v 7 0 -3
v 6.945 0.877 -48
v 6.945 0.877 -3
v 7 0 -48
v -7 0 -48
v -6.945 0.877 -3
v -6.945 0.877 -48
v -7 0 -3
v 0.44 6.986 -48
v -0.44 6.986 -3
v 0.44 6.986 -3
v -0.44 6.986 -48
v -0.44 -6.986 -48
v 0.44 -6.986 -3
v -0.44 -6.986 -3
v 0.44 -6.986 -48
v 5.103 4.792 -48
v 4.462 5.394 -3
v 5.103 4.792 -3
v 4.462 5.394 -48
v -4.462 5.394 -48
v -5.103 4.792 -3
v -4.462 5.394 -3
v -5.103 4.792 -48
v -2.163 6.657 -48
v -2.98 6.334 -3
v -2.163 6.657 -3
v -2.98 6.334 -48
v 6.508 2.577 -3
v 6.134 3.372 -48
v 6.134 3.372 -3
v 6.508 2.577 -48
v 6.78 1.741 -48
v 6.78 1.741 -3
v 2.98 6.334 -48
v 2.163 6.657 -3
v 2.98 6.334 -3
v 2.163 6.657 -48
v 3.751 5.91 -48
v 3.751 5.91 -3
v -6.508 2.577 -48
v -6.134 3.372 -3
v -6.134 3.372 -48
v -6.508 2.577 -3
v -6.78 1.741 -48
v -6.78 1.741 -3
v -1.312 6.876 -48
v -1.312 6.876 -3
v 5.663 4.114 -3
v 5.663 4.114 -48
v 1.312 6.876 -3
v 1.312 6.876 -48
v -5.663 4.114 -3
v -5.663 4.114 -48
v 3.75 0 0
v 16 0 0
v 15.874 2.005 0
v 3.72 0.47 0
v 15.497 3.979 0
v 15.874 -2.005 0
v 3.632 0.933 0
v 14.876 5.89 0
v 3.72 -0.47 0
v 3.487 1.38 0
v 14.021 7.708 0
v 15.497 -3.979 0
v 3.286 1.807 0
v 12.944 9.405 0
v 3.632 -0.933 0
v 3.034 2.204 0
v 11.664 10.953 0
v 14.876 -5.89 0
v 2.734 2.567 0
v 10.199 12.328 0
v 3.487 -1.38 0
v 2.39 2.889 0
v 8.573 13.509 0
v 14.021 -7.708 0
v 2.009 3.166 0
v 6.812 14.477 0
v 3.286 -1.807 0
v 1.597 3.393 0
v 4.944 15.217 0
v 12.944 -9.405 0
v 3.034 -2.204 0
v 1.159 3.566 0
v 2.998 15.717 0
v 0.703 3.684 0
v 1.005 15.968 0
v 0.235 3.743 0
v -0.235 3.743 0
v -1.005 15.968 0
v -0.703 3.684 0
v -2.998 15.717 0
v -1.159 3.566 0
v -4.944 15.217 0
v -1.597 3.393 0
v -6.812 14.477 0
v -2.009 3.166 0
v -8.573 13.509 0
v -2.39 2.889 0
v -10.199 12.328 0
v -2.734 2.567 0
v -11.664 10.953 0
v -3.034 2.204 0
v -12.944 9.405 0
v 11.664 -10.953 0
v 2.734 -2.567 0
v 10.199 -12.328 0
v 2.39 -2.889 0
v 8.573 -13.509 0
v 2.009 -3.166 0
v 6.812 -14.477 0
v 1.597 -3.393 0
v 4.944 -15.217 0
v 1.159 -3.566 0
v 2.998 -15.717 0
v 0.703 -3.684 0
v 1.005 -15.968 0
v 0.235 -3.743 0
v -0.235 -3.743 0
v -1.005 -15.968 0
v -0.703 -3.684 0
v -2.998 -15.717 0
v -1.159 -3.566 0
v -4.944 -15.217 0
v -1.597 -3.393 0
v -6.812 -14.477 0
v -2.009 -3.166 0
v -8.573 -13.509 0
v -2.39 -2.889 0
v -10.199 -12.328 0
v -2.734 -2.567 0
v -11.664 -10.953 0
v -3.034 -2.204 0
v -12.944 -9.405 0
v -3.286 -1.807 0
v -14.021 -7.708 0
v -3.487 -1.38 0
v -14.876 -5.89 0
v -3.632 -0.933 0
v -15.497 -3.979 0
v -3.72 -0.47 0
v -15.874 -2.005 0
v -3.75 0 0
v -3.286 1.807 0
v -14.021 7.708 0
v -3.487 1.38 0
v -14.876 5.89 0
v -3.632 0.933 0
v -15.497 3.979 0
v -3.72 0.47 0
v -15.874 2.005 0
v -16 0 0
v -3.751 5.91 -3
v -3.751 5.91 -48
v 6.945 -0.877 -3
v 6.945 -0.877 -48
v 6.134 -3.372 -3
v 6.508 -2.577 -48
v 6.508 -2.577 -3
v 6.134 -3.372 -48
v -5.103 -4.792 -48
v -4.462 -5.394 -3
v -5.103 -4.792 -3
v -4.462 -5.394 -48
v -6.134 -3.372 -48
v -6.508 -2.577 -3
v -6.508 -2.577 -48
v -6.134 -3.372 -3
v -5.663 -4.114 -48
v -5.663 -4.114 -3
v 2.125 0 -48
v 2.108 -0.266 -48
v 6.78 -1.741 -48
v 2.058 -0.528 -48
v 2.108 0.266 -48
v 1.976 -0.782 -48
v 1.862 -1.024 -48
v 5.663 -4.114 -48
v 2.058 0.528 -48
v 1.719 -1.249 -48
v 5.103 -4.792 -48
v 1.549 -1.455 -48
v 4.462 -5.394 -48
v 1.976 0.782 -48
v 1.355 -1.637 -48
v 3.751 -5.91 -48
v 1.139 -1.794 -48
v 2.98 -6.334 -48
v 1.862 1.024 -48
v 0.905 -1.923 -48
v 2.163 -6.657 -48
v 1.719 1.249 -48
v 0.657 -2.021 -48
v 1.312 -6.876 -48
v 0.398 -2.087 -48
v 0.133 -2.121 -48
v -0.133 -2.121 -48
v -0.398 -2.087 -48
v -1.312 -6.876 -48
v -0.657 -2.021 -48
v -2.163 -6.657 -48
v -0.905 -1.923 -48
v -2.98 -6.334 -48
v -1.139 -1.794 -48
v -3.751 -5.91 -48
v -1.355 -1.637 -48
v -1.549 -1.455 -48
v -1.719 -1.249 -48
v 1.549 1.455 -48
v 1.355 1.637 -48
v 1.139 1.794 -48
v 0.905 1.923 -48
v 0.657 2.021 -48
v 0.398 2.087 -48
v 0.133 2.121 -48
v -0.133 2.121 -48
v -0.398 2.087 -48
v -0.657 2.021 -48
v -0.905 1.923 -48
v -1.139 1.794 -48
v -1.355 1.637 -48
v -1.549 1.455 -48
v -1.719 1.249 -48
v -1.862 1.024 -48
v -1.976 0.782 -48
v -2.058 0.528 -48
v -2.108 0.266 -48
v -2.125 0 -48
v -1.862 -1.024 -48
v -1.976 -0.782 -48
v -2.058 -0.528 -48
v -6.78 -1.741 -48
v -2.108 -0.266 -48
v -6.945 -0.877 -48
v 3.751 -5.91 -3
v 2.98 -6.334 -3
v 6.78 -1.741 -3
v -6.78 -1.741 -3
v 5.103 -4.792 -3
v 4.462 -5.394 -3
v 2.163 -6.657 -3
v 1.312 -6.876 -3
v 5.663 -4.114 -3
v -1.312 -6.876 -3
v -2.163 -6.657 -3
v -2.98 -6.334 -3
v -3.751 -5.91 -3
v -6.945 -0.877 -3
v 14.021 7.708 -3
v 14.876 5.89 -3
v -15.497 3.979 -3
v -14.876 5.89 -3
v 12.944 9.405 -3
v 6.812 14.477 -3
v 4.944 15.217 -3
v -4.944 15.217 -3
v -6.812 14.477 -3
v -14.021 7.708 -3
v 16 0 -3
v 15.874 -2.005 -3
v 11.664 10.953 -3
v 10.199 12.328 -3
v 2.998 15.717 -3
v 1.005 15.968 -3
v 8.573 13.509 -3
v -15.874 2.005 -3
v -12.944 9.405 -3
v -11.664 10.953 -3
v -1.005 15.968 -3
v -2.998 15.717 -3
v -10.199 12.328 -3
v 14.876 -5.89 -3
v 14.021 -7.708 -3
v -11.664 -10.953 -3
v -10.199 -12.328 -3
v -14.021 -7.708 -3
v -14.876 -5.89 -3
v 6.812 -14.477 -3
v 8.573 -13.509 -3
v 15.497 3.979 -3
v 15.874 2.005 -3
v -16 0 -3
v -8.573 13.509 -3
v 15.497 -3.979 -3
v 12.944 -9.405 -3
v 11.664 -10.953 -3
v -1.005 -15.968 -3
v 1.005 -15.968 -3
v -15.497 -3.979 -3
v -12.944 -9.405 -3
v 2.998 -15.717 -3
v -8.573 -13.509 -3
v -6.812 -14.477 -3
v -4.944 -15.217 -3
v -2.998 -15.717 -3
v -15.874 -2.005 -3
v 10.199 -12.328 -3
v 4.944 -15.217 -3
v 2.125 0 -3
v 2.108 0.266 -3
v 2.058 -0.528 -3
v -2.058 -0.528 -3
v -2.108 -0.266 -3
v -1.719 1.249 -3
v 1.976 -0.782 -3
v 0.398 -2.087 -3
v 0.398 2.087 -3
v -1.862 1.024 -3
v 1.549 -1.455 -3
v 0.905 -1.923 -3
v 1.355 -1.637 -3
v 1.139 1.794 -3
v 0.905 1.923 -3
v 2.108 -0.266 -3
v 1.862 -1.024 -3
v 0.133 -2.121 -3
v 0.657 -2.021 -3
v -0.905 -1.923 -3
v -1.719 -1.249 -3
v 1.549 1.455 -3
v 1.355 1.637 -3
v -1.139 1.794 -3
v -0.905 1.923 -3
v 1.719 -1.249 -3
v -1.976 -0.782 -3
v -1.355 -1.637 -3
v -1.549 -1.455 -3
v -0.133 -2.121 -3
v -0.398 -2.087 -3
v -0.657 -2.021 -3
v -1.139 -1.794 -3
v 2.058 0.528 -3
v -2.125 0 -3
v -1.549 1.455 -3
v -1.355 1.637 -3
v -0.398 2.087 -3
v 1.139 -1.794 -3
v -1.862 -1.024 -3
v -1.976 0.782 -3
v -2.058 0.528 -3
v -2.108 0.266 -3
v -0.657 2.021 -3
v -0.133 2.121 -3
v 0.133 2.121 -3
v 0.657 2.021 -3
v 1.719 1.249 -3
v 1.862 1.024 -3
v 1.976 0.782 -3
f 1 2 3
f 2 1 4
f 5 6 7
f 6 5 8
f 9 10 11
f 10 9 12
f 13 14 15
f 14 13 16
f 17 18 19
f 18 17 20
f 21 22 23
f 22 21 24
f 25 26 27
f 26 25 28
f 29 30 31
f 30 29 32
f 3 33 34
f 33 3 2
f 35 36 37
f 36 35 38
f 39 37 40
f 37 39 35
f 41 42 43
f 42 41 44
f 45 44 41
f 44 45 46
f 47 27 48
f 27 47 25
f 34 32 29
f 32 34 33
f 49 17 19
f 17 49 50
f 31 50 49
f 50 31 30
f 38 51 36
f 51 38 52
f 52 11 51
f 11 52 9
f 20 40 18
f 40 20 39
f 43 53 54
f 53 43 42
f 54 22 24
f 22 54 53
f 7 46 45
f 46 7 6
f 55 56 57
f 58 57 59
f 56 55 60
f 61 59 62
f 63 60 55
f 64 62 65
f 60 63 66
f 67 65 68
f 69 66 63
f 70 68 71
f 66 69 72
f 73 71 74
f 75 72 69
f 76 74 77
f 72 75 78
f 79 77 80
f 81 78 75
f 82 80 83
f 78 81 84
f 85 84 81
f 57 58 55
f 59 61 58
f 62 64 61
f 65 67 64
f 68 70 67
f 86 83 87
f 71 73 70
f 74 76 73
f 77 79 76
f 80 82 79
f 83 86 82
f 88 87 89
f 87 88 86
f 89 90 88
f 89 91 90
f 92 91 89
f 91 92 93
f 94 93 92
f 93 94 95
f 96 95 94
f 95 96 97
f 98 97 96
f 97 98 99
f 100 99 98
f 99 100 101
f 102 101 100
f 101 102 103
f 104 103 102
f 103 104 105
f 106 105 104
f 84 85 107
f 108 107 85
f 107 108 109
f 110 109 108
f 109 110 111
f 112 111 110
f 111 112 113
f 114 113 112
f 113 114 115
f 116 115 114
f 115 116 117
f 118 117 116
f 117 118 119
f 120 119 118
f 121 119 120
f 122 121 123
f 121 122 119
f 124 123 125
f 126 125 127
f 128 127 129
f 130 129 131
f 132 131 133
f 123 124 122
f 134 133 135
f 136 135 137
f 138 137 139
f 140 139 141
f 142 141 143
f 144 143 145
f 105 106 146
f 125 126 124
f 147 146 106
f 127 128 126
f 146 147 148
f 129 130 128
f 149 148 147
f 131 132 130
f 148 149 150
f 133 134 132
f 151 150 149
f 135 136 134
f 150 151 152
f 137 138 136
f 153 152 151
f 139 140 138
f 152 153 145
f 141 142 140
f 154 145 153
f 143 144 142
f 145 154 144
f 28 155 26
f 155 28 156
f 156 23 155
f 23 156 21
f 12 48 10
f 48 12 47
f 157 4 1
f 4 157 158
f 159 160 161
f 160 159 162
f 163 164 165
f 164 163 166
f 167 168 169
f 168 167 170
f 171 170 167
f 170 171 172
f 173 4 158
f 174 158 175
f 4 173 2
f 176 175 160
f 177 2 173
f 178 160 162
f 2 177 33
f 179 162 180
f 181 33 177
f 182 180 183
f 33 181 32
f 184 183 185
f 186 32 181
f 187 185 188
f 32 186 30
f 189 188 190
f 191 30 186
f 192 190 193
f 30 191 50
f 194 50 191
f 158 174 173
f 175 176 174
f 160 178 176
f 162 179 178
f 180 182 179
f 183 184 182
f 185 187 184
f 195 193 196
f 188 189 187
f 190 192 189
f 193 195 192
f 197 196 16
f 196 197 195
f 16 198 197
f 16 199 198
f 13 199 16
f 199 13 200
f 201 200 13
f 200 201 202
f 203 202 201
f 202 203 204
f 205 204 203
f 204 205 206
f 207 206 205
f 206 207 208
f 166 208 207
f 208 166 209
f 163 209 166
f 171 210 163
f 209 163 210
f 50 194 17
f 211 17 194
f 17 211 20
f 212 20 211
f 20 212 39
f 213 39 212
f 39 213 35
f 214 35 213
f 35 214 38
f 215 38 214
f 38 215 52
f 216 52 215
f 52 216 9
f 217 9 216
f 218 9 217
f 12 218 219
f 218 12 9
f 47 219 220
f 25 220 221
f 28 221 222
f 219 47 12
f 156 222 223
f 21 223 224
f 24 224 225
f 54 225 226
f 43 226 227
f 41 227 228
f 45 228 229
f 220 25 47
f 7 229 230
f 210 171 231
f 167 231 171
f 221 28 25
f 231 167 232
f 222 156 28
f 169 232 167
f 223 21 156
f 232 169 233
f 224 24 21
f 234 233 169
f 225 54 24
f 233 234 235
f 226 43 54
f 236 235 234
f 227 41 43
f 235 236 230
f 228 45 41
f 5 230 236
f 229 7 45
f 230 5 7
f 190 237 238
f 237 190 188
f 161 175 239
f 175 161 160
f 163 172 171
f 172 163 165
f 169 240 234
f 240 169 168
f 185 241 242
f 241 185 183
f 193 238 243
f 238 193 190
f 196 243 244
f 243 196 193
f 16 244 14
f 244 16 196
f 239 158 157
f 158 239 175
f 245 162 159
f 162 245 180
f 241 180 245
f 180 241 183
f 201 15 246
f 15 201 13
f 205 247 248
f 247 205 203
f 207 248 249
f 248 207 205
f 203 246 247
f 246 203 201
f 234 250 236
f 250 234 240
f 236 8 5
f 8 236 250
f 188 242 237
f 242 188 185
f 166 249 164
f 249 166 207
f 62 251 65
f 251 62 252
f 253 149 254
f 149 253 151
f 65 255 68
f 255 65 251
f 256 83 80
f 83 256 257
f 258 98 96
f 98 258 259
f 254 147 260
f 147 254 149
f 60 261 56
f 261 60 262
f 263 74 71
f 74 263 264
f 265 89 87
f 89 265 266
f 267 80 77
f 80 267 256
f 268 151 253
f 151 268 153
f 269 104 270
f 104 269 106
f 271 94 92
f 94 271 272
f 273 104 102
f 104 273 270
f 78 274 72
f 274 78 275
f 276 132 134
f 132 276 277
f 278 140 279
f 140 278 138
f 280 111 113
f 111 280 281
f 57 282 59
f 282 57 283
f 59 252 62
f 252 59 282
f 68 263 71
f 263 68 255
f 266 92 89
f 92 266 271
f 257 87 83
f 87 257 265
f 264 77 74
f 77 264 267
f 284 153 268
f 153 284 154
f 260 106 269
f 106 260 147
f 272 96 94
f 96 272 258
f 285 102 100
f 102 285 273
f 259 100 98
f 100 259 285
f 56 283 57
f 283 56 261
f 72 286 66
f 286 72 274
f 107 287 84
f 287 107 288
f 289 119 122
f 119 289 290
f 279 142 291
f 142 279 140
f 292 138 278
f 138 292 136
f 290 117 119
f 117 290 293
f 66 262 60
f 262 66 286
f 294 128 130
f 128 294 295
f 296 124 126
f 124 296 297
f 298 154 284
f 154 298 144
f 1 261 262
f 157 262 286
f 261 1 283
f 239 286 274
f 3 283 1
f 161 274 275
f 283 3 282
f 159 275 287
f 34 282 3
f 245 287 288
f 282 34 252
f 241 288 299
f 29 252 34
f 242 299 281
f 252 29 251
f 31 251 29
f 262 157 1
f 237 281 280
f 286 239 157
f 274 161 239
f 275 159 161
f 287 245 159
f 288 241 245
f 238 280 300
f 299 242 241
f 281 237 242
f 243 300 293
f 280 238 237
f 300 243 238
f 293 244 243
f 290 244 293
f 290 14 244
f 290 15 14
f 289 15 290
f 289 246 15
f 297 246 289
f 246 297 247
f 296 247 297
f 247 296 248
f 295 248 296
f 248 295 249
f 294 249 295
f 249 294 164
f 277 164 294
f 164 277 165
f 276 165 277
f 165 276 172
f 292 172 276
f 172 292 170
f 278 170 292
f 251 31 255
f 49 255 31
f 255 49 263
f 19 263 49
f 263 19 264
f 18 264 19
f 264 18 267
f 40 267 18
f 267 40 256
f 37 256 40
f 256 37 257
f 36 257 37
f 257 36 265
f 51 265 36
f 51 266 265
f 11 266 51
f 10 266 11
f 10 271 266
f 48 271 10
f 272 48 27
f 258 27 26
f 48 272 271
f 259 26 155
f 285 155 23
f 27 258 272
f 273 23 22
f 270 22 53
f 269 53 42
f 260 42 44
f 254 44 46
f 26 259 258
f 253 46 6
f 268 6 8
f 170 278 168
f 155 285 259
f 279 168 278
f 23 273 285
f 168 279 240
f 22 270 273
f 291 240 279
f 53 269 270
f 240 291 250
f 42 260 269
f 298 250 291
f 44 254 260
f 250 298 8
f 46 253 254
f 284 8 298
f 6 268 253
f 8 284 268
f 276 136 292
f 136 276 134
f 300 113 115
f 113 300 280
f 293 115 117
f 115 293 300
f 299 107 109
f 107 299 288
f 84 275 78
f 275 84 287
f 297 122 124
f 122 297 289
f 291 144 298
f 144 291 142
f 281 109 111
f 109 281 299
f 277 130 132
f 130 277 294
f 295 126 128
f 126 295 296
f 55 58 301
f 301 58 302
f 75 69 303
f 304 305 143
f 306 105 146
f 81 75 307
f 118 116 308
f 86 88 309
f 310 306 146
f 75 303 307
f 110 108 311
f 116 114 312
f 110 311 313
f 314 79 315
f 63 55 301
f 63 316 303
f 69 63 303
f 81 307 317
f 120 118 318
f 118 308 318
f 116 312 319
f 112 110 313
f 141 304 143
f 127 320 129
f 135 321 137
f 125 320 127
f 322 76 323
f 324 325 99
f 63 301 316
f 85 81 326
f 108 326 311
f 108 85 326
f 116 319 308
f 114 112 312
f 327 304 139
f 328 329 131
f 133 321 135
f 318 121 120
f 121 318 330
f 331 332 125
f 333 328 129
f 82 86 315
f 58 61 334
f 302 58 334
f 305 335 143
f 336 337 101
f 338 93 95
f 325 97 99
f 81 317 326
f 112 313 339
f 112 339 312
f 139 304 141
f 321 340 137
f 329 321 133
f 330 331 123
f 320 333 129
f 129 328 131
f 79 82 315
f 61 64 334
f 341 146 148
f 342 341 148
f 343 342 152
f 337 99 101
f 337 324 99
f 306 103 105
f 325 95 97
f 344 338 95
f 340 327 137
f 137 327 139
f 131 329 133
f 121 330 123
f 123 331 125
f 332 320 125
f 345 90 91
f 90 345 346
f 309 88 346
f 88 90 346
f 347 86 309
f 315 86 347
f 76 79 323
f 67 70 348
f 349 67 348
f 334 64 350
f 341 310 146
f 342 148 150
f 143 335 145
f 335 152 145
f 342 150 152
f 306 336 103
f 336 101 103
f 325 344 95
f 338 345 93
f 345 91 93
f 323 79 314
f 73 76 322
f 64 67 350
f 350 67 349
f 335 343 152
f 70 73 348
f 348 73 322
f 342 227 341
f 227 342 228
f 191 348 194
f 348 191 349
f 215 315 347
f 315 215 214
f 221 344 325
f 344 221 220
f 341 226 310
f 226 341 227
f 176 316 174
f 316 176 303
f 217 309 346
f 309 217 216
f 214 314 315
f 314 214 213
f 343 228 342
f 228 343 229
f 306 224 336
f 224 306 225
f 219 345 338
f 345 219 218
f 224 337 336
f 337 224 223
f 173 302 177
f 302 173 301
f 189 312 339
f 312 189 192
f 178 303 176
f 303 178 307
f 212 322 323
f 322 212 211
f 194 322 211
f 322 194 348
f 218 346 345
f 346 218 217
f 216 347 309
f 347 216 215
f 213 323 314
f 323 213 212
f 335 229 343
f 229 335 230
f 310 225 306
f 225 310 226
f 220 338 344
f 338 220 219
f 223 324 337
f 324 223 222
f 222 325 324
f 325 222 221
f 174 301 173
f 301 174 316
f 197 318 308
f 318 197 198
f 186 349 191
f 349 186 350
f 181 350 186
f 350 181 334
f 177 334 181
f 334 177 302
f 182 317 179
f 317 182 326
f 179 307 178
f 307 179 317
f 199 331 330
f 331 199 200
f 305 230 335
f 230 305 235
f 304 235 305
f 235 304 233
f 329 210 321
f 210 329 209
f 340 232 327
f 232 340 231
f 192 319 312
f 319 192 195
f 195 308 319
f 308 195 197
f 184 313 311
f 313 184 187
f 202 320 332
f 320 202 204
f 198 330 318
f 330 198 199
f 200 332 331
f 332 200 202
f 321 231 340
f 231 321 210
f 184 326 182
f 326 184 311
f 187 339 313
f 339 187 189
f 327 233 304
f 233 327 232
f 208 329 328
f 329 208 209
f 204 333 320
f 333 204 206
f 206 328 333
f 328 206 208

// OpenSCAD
$fn = 50;


difference() {
	union() {
		translate(v = [0, 0, -48.0000000000]) {
			cylinder(h = 48, r = 7.0000000000);
		}
		translate(v = [0, 0, -3.0000000000]) {
			cylinder(h = 3, r = 16.0000000000);
		}
	}
	union() {
		translate(v = [0, 0, 0]) {
			rotate(a = [0, 0, 0]) {
				difference() {
					union() {
						#translate(v = [0, 0, -48.0000000000]) {
							cylinder(h = 48, r = 2.0000000000);
						}
						#translate(v = [0, 0, -3]) {
							cylinder(h = 3, r = 7.0000000000, r1 = 2.1250000000, r2 = 3.7500000000);
						}
						#translate(v = [0, 0, -48.0000000000]) {
							cylinder(h = 48, r = 2.1250000000);
						}
						#translate(v = [0, 0, -48.0000000000]) {
							cylinder(h = 48, r = 2.0000000000);
						}
					}
					union();
				}
			}
		}
	}
}
